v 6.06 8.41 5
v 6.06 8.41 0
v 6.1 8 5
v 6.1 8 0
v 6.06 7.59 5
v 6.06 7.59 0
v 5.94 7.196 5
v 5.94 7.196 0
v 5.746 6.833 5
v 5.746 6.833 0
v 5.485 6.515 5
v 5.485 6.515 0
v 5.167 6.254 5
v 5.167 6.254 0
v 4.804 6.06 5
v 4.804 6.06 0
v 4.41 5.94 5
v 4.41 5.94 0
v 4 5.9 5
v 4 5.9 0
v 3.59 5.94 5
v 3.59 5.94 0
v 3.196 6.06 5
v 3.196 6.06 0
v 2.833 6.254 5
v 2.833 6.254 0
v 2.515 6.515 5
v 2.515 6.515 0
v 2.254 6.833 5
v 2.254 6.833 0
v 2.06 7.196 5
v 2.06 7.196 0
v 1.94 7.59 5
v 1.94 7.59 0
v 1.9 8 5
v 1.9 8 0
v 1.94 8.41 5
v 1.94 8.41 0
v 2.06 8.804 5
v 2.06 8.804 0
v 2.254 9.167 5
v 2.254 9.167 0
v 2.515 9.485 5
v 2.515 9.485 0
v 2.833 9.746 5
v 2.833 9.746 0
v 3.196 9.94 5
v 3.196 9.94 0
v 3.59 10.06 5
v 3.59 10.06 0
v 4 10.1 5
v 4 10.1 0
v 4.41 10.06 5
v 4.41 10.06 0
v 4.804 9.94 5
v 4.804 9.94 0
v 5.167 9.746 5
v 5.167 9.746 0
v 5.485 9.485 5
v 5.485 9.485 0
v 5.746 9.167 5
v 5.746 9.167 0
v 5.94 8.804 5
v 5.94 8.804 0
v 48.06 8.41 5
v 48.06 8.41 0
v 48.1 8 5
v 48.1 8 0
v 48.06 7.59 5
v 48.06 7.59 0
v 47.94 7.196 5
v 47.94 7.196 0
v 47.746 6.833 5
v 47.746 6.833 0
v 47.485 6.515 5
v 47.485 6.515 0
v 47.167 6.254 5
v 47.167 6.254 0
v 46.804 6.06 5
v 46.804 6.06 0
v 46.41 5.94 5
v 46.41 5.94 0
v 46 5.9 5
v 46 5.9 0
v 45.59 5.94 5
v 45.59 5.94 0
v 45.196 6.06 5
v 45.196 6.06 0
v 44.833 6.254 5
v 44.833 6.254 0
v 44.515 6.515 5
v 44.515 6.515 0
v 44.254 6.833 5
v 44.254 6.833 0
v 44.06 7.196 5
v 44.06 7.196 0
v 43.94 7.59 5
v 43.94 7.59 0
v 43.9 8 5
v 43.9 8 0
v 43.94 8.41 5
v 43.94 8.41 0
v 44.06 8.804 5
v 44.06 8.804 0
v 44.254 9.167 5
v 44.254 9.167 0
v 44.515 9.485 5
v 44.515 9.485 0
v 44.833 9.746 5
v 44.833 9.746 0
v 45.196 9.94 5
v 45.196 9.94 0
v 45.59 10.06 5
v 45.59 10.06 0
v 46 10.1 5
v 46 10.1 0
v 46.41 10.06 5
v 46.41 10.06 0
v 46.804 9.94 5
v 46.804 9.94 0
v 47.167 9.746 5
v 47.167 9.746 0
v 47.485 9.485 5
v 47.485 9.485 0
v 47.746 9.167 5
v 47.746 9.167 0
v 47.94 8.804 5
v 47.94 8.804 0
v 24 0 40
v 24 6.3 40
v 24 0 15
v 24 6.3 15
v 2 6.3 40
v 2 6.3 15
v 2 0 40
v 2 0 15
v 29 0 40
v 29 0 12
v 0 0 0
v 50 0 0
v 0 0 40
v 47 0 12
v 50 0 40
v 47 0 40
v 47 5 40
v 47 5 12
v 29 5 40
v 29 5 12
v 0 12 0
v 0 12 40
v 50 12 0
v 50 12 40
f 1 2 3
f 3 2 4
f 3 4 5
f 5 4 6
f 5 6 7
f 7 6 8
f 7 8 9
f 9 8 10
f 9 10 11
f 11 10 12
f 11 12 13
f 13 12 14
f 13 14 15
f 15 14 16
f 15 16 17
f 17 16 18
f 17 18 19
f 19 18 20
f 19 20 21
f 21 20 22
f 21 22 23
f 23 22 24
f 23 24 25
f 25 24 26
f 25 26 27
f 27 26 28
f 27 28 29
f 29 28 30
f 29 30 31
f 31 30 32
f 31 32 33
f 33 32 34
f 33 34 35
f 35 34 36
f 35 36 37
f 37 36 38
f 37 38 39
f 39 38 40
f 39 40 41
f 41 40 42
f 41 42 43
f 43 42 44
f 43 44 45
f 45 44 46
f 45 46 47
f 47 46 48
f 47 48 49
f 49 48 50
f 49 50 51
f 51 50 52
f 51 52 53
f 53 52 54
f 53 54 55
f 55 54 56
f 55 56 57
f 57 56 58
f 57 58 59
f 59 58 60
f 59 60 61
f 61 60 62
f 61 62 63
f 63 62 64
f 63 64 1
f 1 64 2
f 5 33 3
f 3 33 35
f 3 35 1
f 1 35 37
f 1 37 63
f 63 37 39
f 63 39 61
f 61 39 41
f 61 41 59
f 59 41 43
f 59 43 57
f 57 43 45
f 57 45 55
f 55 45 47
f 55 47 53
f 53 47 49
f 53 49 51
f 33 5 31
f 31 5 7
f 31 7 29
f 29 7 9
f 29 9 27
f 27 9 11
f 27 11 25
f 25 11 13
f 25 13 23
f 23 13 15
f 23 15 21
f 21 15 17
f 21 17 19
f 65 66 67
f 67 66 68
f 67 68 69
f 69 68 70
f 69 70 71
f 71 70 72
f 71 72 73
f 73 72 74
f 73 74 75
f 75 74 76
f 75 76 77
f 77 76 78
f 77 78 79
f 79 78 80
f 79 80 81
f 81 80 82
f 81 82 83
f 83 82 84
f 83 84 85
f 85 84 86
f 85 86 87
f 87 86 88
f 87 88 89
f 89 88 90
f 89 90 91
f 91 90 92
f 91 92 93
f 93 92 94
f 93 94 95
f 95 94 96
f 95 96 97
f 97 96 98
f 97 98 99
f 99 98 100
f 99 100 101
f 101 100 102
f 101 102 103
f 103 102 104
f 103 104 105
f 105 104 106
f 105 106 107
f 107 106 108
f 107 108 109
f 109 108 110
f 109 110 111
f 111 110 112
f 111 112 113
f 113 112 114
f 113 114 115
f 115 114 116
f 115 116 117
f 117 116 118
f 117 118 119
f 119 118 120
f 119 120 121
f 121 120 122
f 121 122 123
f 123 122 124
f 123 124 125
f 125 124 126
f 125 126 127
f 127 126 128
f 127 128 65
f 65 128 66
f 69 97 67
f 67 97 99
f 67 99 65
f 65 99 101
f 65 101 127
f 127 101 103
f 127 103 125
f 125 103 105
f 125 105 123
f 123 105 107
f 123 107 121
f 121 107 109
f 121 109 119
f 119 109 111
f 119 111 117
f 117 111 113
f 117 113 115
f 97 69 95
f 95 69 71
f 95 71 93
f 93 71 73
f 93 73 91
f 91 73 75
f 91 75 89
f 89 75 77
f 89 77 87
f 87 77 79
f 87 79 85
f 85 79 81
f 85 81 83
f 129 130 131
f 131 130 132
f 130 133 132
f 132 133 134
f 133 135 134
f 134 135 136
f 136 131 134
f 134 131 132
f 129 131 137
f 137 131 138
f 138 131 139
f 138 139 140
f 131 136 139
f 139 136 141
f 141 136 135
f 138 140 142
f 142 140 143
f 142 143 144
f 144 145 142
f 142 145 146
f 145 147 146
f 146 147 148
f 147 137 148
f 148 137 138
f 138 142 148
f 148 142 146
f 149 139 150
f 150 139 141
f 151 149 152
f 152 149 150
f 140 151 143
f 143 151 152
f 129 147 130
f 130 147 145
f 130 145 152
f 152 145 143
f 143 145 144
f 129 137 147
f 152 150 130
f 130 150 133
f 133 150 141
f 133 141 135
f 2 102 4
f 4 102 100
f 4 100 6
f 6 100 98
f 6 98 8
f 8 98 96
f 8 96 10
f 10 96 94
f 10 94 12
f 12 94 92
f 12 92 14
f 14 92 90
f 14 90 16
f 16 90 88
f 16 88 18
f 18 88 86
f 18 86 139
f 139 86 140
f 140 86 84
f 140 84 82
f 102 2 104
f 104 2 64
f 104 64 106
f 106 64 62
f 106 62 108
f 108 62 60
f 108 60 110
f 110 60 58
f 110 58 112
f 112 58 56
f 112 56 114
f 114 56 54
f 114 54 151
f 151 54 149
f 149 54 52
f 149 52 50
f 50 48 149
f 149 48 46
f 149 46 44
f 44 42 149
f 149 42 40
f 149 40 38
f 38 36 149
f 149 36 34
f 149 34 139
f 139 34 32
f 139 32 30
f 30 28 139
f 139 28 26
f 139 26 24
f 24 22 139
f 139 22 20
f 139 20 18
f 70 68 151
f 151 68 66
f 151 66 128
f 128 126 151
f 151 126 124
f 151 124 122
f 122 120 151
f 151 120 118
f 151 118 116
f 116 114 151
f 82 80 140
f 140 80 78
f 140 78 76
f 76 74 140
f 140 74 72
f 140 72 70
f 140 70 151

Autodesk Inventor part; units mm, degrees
ref_plane "YZ Plane" through (0, 0, 0) normal (1, 0, 0) x (0, 1, 0)
ref_plane "XZ Plane" through (0, 0, 0) normal (0, 1, 0) x (-1, 0, 0)
sketch "Skizze1" plane through (0, 0, 0) normal (0, 0, 1) x (1, 0, 0)
  line L0 (0, 0) -> (50, 0)
  line L1 (50, 0) -> (50, 12)
  line L2 (50, 12) -> (0, 12)
  line L3 (0, 12) -> (0, 0)
extrude "Extrusion1" add sketch "Skizze1" along normal blind 40
ref_plane "Arbeitsebene1" through (0, 0, 40) normal (0, 0, 1) x (1, 0, 0)
sketch "Skizze2" plane through (0, 0, 40) normal (0, 0, 1) x (1, 0, 0)
  line L0 (29, 0) -> (47, 0)
  line L1 (47, 0) -> (47, 5)
  line L2 (47, 5) -> (29, 5)
  line L3 (29, 5) -> (29, 0)
extrude "Extrusion2" cut sketch "Skizze2" against normal blind 28
sketch "Skizze3" plane through (0, 0, 40) normal (0, 0, 1) x (1, 0, 0)
  line L0 (2, 0) -> (24, 0)
  line L1 (24, 0) -> (24, 6.3)
  line L2 (24, 6.3) -> (2, 6.3)
  line L3 (2, 6.3) -> (2, 0)
extrude "Extrusion3" cut sketch "Skizze3" against normal blind 25
sketch "Skizze4" plane through (0, 0, 0) normal (0, 1, 0) x (-1, 0, 0)
  circle A0 centre (38, 20) radius 2
extrude "Extrusion4" cut sketch "Skizze4" along normal mid plane 30
sketch "Skizze5" plane through (0, 0, 40) normal (0, 0, 1) x (1, 0, 0)
  circle A0 centre (13, 0) radius 2.5
extrude "Extrusion5" cut sketch "Skizze5" against normal blind 5
sketch "Skizze6" plane through (0, 0, 0) normal (0, 0, 1) x (1, 0, 0)
  circle A0 centre (4, -8) radius 2.1
  circle A1 centre (4, 8) radius 2.1
  circle A2 centre (46, -8) radius 2.1
  circle A3 centre (46, 8) radius 2.1
extrude "Extrusion6" cut sketch "Skizze6" along normal blind 5
properties part number "Motorhalterung"
